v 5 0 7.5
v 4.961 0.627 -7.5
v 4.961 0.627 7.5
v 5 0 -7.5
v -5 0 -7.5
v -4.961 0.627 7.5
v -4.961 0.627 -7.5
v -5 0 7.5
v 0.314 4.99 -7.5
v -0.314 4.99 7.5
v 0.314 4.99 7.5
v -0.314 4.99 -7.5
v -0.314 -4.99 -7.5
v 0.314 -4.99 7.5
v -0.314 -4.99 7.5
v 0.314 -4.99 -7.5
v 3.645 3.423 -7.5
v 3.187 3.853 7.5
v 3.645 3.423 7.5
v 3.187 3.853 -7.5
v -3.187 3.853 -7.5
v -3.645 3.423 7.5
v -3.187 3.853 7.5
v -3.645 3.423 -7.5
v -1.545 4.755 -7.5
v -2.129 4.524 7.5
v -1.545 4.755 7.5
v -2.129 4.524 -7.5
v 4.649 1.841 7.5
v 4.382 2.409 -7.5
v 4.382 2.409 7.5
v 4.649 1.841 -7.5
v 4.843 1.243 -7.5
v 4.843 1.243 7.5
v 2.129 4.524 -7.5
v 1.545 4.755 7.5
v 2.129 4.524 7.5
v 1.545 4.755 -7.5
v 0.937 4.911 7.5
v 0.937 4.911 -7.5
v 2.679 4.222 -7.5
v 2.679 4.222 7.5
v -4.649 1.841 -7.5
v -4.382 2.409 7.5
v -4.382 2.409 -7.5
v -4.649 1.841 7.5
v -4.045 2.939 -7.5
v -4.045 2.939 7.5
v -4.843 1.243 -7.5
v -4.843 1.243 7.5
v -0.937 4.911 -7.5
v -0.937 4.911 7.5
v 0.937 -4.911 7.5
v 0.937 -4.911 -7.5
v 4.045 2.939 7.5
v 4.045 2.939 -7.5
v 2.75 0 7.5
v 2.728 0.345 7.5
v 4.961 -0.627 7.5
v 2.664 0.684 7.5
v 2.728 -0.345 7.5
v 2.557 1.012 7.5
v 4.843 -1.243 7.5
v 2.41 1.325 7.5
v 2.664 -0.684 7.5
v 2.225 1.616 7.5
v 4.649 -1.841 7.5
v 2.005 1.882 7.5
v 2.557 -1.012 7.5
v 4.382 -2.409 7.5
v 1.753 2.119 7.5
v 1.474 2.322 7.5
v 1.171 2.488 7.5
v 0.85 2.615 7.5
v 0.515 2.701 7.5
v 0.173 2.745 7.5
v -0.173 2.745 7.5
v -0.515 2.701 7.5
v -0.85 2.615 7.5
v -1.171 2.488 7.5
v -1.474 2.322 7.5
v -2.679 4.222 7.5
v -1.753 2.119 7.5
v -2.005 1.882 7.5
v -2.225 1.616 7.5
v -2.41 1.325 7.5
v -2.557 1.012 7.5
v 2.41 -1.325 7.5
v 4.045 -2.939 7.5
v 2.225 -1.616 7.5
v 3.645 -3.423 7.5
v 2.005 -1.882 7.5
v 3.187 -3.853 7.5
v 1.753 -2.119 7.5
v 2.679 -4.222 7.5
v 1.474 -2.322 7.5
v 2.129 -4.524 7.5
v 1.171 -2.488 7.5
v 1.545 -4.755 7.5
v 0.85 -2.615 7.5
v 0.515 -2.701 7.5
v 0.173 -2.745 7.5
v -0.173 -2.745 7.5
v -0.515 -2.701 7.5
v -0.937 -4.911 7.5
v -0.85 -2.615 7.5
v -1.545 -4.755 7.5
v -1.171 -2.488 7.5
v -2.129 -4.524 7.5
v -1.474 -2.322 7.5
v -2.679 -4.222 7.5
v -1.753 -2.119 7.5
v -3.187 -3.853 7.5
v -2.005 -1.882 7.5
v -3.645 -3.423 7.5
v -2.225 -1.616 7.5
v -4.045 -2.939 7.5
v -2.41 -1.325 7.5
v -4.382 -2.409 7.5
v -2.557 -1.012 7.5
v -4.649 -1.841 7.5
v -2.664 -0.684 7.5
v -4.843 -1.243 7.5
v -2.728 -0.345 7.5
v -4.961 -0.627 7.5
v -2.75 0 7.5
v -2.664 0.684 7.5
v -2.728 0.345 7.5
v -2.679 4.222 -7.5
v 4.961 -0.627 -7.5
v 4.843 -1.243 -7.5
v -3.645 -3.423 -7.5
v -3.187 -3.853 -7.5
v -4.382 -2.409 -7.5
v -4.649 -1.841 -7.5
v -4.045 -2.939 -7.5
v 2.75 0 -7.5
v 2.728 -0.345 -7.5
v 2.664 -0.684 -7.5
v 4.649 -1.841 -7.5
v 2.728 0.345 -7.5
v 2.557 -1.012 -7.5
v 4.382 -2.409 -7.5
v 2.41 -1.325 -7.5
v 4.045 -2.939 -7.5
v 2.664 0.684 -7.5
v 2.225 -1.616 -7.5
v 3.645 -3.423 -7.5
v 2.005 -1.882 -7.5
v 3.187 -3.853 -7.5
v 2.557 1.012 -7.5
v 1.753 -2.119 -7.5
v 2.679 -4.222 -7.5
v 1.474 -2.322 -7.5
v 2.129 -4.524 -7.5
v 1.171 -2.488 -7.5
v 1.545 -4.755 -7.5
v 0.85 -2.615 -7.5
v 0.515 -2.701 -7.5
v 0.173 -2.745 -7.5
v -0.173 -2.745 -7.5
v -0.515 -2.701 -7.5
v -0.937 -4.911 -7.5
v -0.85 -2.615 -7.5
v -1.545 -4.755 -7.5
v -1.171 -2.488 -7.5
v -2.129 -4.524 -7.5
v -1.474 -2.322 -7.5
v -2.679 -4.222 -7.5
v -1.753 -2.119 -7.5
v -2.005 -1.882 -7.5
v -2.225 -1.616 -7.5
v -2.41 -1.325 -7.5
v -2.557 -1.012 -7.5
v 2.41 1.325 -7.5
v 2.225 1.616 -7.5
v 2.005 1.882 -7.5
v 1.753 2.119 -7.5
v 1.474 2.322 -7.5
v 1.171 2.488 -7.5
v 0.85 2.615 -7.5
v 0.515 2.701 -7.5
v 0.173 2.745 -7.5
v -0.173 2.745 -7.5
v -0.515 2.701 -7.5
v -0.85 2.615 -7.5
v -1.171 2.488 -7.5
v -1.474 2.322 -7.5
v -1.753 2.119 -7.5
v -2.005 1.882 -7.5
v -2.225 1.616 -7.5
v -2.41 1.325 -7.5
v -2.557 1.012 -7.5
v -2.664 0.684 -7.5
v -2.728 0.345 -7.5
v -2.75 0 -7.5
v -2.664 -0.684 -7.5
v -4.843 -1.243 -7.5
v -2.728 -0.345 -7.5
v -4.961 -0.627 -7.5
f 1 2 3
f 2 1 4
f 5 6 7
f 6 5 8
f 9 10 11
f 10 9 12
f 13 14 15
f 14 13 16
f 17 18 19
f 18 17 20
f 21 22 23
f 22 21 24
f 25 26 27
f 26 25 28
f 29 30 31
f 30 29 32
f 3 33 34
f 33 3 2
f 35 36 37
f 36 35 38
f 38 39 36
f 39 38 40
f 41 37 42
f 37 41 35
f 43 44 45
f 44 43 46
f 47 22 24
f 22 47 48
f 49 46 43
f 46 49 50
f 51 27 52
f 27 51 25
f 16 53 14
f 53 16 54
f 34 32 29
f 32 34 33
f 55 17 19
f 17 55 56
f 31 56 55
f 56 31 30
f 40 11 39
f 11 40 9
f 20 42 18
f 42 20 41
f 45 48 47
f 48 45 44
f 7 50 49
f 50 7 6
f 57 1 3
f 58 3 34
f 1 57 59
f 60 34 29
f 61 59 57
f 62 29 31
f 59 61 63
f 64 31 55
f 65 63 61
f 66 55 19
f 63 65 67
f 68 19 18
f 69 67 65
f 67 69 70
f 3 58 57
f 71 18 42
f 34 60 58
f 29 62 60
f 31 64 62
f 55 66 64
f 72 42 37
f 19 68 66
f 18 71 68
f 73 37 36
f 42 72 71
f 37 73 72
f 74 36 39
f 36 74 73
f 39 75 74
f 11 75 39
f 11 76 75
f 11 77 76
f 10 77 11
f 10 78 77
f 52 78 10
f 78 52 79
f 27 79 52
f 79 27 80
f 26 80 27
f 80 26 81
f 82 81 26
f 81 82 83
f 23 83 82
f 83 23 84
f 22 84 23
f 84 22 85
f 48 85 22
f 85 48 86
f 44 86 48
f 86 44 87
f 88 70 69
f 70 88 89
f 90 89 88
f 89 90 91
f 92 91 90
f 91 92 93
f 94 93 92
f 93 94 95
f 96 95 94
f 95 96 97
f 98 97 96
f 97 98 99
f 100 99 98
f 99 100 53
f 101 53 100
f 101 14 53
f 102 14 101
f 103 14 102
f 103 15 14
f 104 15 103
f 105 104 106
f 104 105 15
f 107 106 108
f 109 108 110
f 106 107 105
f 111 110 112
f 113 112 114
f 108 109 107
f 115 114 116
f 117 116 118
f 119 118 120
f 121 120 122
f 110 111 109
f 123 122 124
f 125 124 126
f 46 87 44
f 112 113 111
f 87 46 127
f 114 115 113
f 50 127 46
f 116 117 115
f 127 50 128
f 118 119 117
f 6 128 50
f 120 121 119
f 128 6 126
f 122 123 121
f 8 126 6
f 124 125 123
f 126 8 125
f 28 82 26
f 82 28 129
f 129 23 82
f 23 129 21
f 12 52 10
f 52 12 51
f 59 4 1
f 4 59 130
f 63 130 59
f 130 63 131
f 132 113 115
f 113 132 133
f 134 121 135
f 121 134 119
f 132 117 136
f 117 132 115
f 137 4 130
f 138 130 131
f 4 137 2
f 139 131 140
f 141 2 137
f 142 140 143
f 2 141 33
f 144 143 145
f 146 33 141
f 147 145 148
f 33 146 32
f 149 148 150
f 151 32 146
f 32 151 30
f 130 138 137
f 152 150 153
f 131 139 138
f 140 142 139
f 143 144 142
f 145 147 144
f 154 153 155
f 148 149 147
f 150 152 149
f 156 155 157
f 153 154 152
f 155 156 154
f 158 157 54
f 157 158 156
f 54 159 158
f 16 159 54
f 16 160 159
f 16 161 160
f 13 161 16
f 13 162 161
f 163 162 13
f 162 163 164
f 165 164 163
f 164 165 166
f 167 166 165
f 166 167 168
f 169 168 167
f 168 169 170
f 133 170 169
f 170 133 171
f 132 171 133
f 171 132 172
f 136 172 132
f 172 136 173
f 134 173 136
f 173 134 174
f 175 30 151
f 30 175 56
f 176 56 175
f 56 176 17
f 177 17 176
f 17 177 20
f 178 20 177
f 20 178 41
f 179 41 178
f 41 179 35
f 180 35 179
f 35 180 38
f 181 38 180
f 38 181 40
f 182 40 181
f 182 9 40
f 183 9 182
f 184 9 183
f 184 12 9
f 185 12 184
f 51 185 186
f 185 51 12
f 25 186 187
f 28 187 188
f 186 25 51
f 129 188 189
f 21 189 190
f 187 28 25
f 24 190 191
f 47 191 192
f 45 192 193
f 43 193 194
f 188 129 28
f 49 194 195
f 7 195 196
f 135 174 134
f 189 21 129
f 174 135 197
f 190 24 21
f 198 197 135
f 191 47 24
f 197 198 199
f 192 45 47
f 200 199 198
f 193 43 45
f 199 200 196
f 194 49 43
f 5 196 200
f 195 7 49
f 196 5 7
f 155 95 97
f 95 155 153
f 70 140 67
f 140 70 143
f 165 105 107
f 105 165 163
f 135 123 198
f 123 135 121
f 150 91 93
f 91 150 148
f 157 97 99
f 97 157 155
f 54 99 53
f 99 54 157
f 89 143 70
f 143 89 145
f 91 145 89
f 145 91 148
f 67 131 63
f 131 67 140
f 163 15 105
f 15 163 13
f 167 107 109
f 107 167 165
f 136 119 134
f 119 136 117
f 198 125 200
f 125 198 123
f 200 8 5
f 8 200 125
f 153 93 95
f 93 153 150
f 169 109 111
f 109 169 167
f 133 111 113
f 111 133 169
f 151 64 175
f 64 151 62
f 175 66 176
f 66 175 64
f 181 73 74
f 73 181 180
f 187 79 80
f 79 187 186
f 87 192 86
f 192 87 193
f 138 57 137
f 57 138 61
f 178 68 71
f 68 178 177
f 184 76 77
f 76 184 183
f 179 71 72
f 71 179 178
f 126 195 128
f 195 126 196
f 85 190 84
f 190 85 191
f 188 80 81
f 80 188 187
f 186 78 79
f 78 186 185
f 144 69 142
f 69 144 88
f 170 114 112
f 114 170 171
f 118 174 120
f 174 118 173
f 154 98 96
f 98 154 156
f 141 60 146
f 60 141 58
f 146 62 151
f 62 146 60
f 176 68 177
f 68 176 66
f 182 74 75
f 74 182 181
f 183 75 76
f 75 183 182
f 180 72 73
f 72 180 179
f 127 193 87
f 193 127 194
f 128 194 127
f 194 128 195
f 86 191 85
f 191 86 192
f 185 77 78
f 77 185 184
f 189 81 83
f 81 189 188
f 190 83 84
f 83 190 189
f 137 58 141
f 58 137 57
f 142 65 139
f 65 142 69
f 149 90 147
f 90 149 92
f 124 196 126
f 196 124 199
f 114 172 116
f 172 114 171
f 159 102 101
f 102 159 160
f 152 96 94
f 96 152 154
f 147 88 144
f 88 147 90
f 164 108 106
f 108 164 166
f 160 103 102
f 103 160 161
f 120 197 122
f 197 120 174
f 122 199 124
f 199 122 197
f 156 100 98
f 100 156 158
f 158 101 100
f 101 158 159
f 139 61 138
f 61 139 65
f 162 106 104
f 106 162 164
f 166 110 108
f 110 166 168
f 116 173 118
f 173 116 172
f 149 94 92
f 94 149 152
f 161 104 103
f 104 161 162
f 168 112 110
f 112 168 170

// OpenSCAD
$fn = 50;


difference() {
	union() {
		translate(v = [0, 0, -7.5000000000]) {
			cylinder(h = 15, r = 5.0000000000);
		}
	}
	union() {
		translate(v = [0, 0, -100.0000000000]) {
			cylinder(h = 200, r = 2.7500000000);
		}
	}
}
